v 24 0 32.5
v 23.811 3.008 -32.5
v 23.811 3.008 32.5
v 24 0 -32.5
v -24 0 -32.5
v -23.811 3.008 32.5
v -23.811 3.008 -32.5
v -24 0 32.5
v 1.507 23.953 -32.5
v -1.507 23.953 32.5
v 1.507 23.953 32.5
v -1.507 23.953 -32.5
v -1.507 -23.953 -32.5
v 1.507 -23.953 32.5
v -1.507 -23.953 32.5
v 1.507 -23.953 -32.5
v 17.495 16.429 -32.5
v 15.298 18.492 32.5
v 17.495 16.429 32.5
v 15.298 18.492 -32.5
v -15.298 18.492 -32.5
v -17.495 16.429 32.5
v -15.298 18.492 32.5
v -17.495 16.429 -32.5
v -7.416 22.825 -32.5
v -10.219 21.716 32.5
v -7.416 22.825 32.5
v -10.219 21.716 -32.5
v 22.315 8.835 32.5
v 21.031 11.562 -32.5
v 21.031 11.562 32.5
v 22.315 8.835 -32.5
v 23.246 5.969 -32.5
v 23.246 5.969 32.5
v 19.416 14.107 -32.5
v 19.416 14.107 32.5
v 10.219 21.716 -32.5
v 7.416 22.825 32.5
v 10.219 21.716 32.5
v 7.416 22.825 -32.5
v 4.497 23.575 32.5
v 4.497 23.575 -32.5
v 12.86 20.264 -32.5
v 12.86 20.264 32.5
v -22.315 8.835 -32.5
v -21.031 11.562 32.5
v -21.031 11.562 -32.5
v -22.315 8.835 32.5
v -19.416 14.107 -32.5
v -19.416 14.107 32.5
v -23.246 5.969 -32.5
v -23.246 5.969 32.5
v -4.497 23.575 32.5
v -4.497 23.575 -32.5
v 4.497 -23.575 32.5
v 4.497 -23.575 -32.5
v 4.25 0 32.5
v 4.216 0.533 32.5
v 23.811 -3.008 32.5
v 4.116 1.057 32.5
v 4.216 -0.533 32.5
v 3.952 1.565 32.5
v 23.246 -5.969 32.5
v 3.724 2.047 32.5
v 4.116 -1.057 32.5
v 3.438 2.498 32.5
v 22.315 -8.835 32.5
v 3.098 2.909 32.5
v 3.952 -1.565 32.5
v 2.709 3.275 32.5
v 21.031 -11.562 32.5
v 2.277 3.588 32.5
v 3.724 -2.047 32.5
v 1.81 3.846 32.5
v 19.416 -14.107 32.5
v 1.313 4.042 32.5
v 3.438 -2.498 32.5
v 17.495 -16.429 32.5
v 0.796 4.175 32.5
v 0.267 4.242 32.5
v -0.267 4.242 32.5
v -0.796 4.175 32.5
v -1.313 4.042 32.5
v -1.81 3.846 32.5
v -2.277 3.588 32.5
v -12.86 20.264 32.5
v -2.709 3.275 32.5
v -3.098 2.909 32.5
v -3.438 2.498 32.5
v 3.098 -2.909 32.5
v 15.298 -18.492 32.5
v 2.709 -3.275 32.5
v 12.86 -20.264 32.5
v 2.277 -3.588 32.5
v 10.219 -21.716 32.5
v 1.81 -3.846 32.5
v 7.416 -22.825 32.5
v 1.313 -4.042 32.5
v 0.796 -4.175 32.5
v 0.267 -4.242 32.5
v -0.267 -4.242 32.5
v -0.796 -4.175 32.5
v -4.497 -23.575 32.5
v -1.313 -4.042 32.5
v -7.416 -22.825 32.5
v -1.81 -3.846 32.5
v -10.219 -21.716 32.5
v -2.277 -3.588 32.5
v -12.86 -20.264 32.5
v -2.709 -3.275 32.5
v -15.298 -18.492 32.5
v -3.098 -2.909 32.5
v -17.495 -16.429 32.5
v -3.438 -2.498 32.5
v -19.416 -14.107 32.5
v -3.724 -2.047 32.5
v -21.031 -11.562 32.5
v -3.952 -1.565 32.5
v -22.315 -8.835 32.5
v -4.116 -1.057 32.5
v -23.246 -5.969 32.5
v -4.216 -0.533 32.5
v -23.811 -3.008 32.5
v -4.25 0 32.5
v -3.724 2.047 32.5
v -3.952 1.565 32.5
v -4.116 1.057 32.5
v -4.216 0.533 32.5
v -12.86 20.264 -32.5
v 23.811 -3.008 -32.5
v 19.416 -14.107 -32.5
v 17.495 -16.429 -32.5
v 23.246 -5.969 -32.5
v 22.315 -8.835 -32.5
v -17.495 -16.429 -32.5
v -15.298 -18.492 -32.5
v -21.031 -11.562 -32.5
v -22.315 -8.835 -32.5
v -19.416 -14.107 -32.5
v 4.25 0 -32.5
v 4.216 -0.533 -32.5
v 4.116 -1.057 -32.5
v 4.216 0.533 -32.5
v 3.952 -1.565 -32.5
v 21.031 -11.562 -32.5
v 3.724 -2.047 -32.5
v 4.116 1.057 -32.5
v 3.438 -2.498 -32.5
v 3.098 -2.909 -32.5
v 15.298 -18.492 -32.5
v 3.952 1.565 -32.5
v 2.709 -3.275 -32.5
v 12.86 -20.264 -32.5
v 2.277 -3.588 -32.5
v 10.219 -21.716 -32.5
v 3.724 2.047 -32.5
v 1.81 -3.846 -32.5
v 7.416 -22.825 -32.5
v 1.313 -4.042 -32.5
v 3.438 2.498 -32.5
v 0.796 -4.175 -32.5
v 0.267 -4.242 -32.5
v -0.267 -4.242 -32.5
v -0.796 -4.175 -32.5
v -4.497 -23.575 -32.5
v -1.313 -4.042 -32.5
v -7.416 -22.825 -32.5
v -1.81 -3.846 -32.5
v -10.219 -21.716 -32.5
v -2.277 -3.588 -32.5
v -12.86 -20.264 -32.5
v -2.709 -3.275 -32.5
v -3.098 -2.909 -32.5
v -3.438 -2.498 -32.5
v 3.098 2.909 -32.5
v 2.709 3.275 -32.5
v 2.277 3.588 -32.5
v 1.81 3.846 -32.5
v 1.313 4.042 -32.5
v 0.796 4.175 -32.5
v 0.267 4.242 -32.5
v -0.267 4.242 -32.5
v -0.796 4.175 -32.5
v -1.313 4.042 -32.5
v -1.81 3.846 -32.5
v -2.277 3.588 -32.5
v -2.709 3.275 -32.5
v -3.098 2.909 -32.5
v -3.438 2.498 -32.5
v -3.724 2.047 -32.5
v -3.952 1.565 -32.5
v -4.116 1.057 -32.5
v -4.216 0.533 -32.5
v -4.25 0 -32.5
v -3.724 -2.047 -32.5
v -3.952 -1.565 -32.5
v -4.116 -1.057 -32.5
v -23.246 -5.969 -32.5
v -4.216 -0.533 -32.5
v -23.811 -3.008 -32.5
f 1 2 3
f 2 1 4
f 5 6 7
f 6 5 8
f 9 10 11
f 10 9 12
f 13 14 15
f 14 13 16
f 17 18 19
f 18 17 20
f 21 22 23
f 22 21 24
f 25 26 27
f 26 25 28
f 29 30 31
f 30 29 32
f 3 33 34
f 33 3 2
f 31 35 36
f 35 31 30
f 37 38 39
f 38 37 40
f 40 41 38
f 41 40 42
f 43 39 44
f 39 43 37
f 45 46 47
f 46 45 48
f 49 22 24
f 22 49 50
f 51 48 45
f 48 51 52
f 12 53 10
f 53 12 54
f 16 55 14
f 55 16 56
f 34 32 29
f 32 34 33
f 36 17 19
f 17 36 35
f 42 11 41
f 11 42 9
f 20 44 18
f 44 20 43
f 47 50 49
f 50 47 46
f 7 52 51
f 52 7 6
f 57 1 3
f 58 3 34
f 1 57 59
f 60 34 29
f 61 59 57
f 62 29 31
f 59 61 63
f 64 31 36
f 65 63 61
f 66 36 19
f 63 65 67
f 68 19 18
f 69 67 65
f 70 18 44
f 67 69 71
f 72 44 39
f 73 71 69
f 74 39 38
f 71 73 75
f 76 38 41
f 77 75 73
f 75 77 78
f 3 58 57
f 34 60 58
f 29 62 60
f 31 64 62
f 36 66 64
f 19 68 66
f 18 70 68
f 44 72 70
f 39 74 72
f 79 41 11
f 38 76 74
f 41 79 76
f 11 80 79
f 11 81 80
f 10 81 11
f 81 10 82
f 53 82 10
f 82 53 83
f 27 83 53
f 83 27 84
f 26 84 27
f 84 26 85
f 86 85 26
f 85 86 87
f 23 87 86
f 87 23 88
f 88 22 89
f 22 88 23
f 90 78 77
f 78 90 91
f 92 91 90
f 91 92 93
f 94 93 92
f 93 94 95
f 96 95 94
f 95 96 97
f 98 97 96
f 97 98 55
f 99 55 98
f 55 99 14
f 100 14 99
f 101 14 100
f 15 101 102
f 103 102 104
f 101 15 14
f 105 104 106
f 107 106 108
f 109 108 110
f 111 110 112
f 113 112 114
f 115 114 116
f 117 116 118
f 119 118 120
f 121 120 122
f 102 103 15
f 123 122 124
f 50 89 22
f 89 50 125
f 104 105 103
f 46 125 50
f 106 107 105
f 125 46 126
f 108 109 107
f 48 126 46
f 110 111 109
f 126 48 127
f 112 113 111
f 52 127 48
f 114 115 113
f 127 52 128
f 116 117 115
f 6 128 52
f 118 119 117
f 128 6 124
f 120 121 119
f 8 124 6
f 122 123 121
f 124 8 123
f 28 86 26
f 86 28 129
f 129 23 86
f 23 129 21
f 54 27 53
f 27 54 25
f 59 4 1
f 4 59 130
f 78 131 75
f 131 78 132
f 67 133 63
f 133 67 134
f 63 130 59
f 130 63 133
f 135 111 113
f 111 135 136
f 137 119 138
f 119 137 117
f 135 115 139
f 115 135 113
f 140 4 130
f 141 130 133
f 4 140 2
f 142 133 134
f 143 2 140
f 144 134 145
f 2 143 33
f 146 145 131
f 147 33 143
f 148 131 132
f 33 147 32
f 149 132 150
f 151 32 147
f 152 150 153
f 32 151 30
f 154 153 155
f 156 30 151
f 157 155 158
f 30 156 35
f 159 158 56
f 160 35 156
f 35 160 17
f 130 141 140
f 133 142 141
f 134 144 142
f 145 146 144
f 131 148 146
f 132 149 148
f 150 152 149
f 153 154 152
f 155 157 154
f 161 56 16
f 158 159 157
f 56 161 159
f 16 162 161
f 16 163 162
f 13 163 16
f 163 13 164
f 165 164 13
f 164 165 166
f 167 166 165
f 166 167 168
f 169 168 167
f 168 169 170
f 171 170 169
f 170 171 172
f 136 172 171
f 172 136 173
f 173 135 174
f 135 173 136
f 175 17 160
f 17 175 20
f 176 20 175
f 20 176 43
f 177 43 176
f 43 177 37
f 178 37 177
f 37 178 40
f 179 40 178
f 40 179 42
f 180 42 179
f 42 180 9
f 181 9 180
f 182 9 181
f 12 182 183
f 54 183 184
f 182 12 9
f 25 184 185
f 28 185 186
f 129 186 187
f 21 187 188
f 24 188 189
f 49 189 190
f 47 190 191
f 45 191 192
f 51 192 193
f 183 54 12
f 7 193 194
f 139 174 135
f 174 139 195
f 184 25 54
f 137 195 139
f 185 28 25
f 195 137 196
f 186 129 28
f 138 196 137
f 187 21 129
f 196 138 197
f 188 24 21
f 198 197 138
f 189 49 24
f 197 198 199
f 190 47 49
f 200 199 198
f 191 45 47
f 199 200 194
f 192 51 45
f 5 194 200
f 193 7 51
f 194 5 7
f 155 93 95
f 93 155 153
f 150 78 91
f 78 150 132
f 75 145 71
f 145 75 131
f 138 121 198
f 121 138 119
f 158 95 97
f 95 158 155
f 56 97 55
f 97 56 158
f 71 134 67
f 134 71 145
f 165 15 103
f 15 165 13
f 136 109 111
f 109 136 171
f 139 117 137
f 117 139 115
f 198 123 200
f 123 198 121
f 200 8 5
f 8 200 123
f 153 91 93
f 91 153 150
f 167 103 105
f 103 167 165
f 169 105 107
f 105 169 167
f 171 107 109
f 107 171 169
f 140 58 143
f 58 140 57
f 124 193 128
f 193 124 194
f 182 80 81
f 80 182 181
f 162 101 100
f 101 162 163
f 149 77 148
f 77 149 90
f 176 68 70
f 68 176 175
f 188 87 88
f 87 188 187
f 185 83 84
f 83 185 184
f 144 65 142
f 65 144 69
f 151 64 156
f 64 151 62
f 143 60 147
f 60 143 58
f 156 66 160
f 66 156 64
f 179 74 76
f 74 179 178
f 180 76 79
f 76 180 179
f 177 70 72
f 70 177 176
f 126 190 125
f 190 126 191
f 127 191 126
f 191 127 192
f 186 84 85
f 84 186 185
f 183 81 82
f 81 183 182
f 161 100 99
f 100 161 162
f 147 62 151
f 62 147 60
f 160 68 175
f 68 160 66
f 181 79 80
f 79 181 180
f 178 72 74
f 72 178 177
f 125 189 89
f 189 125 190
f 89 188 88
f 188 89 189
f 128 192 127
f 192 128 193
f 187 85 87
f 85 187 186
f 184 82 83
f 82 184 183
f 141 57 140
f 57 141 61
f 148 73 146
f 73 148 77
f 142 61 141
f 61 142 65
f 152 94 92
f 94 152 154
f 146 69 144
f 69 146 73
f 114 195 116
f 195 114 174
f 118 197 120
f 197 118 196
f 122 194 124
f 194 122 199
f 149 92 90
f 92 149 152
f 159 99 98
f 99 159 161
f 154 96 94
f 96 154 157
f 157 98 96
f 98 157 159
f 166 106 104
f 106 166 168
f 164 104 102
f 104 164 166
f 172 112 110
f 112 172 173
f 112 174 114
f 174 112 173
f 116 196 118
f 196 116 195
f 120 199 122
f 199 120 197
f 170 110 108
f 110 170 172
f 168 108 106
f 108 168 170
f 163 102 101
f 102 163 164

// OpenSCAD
$fn = 50;


difference() {
	union() {
		translate(v = [0, 0, -32.5000000000]) {
			cylinder(h = 65, r = 24.0000000000);
		}
	}
	union() {
		translate(v = [0, 0, -100.0000000000]) {
			cylinder(h = 200, r = 4.2500000000);
		}
	}
}
